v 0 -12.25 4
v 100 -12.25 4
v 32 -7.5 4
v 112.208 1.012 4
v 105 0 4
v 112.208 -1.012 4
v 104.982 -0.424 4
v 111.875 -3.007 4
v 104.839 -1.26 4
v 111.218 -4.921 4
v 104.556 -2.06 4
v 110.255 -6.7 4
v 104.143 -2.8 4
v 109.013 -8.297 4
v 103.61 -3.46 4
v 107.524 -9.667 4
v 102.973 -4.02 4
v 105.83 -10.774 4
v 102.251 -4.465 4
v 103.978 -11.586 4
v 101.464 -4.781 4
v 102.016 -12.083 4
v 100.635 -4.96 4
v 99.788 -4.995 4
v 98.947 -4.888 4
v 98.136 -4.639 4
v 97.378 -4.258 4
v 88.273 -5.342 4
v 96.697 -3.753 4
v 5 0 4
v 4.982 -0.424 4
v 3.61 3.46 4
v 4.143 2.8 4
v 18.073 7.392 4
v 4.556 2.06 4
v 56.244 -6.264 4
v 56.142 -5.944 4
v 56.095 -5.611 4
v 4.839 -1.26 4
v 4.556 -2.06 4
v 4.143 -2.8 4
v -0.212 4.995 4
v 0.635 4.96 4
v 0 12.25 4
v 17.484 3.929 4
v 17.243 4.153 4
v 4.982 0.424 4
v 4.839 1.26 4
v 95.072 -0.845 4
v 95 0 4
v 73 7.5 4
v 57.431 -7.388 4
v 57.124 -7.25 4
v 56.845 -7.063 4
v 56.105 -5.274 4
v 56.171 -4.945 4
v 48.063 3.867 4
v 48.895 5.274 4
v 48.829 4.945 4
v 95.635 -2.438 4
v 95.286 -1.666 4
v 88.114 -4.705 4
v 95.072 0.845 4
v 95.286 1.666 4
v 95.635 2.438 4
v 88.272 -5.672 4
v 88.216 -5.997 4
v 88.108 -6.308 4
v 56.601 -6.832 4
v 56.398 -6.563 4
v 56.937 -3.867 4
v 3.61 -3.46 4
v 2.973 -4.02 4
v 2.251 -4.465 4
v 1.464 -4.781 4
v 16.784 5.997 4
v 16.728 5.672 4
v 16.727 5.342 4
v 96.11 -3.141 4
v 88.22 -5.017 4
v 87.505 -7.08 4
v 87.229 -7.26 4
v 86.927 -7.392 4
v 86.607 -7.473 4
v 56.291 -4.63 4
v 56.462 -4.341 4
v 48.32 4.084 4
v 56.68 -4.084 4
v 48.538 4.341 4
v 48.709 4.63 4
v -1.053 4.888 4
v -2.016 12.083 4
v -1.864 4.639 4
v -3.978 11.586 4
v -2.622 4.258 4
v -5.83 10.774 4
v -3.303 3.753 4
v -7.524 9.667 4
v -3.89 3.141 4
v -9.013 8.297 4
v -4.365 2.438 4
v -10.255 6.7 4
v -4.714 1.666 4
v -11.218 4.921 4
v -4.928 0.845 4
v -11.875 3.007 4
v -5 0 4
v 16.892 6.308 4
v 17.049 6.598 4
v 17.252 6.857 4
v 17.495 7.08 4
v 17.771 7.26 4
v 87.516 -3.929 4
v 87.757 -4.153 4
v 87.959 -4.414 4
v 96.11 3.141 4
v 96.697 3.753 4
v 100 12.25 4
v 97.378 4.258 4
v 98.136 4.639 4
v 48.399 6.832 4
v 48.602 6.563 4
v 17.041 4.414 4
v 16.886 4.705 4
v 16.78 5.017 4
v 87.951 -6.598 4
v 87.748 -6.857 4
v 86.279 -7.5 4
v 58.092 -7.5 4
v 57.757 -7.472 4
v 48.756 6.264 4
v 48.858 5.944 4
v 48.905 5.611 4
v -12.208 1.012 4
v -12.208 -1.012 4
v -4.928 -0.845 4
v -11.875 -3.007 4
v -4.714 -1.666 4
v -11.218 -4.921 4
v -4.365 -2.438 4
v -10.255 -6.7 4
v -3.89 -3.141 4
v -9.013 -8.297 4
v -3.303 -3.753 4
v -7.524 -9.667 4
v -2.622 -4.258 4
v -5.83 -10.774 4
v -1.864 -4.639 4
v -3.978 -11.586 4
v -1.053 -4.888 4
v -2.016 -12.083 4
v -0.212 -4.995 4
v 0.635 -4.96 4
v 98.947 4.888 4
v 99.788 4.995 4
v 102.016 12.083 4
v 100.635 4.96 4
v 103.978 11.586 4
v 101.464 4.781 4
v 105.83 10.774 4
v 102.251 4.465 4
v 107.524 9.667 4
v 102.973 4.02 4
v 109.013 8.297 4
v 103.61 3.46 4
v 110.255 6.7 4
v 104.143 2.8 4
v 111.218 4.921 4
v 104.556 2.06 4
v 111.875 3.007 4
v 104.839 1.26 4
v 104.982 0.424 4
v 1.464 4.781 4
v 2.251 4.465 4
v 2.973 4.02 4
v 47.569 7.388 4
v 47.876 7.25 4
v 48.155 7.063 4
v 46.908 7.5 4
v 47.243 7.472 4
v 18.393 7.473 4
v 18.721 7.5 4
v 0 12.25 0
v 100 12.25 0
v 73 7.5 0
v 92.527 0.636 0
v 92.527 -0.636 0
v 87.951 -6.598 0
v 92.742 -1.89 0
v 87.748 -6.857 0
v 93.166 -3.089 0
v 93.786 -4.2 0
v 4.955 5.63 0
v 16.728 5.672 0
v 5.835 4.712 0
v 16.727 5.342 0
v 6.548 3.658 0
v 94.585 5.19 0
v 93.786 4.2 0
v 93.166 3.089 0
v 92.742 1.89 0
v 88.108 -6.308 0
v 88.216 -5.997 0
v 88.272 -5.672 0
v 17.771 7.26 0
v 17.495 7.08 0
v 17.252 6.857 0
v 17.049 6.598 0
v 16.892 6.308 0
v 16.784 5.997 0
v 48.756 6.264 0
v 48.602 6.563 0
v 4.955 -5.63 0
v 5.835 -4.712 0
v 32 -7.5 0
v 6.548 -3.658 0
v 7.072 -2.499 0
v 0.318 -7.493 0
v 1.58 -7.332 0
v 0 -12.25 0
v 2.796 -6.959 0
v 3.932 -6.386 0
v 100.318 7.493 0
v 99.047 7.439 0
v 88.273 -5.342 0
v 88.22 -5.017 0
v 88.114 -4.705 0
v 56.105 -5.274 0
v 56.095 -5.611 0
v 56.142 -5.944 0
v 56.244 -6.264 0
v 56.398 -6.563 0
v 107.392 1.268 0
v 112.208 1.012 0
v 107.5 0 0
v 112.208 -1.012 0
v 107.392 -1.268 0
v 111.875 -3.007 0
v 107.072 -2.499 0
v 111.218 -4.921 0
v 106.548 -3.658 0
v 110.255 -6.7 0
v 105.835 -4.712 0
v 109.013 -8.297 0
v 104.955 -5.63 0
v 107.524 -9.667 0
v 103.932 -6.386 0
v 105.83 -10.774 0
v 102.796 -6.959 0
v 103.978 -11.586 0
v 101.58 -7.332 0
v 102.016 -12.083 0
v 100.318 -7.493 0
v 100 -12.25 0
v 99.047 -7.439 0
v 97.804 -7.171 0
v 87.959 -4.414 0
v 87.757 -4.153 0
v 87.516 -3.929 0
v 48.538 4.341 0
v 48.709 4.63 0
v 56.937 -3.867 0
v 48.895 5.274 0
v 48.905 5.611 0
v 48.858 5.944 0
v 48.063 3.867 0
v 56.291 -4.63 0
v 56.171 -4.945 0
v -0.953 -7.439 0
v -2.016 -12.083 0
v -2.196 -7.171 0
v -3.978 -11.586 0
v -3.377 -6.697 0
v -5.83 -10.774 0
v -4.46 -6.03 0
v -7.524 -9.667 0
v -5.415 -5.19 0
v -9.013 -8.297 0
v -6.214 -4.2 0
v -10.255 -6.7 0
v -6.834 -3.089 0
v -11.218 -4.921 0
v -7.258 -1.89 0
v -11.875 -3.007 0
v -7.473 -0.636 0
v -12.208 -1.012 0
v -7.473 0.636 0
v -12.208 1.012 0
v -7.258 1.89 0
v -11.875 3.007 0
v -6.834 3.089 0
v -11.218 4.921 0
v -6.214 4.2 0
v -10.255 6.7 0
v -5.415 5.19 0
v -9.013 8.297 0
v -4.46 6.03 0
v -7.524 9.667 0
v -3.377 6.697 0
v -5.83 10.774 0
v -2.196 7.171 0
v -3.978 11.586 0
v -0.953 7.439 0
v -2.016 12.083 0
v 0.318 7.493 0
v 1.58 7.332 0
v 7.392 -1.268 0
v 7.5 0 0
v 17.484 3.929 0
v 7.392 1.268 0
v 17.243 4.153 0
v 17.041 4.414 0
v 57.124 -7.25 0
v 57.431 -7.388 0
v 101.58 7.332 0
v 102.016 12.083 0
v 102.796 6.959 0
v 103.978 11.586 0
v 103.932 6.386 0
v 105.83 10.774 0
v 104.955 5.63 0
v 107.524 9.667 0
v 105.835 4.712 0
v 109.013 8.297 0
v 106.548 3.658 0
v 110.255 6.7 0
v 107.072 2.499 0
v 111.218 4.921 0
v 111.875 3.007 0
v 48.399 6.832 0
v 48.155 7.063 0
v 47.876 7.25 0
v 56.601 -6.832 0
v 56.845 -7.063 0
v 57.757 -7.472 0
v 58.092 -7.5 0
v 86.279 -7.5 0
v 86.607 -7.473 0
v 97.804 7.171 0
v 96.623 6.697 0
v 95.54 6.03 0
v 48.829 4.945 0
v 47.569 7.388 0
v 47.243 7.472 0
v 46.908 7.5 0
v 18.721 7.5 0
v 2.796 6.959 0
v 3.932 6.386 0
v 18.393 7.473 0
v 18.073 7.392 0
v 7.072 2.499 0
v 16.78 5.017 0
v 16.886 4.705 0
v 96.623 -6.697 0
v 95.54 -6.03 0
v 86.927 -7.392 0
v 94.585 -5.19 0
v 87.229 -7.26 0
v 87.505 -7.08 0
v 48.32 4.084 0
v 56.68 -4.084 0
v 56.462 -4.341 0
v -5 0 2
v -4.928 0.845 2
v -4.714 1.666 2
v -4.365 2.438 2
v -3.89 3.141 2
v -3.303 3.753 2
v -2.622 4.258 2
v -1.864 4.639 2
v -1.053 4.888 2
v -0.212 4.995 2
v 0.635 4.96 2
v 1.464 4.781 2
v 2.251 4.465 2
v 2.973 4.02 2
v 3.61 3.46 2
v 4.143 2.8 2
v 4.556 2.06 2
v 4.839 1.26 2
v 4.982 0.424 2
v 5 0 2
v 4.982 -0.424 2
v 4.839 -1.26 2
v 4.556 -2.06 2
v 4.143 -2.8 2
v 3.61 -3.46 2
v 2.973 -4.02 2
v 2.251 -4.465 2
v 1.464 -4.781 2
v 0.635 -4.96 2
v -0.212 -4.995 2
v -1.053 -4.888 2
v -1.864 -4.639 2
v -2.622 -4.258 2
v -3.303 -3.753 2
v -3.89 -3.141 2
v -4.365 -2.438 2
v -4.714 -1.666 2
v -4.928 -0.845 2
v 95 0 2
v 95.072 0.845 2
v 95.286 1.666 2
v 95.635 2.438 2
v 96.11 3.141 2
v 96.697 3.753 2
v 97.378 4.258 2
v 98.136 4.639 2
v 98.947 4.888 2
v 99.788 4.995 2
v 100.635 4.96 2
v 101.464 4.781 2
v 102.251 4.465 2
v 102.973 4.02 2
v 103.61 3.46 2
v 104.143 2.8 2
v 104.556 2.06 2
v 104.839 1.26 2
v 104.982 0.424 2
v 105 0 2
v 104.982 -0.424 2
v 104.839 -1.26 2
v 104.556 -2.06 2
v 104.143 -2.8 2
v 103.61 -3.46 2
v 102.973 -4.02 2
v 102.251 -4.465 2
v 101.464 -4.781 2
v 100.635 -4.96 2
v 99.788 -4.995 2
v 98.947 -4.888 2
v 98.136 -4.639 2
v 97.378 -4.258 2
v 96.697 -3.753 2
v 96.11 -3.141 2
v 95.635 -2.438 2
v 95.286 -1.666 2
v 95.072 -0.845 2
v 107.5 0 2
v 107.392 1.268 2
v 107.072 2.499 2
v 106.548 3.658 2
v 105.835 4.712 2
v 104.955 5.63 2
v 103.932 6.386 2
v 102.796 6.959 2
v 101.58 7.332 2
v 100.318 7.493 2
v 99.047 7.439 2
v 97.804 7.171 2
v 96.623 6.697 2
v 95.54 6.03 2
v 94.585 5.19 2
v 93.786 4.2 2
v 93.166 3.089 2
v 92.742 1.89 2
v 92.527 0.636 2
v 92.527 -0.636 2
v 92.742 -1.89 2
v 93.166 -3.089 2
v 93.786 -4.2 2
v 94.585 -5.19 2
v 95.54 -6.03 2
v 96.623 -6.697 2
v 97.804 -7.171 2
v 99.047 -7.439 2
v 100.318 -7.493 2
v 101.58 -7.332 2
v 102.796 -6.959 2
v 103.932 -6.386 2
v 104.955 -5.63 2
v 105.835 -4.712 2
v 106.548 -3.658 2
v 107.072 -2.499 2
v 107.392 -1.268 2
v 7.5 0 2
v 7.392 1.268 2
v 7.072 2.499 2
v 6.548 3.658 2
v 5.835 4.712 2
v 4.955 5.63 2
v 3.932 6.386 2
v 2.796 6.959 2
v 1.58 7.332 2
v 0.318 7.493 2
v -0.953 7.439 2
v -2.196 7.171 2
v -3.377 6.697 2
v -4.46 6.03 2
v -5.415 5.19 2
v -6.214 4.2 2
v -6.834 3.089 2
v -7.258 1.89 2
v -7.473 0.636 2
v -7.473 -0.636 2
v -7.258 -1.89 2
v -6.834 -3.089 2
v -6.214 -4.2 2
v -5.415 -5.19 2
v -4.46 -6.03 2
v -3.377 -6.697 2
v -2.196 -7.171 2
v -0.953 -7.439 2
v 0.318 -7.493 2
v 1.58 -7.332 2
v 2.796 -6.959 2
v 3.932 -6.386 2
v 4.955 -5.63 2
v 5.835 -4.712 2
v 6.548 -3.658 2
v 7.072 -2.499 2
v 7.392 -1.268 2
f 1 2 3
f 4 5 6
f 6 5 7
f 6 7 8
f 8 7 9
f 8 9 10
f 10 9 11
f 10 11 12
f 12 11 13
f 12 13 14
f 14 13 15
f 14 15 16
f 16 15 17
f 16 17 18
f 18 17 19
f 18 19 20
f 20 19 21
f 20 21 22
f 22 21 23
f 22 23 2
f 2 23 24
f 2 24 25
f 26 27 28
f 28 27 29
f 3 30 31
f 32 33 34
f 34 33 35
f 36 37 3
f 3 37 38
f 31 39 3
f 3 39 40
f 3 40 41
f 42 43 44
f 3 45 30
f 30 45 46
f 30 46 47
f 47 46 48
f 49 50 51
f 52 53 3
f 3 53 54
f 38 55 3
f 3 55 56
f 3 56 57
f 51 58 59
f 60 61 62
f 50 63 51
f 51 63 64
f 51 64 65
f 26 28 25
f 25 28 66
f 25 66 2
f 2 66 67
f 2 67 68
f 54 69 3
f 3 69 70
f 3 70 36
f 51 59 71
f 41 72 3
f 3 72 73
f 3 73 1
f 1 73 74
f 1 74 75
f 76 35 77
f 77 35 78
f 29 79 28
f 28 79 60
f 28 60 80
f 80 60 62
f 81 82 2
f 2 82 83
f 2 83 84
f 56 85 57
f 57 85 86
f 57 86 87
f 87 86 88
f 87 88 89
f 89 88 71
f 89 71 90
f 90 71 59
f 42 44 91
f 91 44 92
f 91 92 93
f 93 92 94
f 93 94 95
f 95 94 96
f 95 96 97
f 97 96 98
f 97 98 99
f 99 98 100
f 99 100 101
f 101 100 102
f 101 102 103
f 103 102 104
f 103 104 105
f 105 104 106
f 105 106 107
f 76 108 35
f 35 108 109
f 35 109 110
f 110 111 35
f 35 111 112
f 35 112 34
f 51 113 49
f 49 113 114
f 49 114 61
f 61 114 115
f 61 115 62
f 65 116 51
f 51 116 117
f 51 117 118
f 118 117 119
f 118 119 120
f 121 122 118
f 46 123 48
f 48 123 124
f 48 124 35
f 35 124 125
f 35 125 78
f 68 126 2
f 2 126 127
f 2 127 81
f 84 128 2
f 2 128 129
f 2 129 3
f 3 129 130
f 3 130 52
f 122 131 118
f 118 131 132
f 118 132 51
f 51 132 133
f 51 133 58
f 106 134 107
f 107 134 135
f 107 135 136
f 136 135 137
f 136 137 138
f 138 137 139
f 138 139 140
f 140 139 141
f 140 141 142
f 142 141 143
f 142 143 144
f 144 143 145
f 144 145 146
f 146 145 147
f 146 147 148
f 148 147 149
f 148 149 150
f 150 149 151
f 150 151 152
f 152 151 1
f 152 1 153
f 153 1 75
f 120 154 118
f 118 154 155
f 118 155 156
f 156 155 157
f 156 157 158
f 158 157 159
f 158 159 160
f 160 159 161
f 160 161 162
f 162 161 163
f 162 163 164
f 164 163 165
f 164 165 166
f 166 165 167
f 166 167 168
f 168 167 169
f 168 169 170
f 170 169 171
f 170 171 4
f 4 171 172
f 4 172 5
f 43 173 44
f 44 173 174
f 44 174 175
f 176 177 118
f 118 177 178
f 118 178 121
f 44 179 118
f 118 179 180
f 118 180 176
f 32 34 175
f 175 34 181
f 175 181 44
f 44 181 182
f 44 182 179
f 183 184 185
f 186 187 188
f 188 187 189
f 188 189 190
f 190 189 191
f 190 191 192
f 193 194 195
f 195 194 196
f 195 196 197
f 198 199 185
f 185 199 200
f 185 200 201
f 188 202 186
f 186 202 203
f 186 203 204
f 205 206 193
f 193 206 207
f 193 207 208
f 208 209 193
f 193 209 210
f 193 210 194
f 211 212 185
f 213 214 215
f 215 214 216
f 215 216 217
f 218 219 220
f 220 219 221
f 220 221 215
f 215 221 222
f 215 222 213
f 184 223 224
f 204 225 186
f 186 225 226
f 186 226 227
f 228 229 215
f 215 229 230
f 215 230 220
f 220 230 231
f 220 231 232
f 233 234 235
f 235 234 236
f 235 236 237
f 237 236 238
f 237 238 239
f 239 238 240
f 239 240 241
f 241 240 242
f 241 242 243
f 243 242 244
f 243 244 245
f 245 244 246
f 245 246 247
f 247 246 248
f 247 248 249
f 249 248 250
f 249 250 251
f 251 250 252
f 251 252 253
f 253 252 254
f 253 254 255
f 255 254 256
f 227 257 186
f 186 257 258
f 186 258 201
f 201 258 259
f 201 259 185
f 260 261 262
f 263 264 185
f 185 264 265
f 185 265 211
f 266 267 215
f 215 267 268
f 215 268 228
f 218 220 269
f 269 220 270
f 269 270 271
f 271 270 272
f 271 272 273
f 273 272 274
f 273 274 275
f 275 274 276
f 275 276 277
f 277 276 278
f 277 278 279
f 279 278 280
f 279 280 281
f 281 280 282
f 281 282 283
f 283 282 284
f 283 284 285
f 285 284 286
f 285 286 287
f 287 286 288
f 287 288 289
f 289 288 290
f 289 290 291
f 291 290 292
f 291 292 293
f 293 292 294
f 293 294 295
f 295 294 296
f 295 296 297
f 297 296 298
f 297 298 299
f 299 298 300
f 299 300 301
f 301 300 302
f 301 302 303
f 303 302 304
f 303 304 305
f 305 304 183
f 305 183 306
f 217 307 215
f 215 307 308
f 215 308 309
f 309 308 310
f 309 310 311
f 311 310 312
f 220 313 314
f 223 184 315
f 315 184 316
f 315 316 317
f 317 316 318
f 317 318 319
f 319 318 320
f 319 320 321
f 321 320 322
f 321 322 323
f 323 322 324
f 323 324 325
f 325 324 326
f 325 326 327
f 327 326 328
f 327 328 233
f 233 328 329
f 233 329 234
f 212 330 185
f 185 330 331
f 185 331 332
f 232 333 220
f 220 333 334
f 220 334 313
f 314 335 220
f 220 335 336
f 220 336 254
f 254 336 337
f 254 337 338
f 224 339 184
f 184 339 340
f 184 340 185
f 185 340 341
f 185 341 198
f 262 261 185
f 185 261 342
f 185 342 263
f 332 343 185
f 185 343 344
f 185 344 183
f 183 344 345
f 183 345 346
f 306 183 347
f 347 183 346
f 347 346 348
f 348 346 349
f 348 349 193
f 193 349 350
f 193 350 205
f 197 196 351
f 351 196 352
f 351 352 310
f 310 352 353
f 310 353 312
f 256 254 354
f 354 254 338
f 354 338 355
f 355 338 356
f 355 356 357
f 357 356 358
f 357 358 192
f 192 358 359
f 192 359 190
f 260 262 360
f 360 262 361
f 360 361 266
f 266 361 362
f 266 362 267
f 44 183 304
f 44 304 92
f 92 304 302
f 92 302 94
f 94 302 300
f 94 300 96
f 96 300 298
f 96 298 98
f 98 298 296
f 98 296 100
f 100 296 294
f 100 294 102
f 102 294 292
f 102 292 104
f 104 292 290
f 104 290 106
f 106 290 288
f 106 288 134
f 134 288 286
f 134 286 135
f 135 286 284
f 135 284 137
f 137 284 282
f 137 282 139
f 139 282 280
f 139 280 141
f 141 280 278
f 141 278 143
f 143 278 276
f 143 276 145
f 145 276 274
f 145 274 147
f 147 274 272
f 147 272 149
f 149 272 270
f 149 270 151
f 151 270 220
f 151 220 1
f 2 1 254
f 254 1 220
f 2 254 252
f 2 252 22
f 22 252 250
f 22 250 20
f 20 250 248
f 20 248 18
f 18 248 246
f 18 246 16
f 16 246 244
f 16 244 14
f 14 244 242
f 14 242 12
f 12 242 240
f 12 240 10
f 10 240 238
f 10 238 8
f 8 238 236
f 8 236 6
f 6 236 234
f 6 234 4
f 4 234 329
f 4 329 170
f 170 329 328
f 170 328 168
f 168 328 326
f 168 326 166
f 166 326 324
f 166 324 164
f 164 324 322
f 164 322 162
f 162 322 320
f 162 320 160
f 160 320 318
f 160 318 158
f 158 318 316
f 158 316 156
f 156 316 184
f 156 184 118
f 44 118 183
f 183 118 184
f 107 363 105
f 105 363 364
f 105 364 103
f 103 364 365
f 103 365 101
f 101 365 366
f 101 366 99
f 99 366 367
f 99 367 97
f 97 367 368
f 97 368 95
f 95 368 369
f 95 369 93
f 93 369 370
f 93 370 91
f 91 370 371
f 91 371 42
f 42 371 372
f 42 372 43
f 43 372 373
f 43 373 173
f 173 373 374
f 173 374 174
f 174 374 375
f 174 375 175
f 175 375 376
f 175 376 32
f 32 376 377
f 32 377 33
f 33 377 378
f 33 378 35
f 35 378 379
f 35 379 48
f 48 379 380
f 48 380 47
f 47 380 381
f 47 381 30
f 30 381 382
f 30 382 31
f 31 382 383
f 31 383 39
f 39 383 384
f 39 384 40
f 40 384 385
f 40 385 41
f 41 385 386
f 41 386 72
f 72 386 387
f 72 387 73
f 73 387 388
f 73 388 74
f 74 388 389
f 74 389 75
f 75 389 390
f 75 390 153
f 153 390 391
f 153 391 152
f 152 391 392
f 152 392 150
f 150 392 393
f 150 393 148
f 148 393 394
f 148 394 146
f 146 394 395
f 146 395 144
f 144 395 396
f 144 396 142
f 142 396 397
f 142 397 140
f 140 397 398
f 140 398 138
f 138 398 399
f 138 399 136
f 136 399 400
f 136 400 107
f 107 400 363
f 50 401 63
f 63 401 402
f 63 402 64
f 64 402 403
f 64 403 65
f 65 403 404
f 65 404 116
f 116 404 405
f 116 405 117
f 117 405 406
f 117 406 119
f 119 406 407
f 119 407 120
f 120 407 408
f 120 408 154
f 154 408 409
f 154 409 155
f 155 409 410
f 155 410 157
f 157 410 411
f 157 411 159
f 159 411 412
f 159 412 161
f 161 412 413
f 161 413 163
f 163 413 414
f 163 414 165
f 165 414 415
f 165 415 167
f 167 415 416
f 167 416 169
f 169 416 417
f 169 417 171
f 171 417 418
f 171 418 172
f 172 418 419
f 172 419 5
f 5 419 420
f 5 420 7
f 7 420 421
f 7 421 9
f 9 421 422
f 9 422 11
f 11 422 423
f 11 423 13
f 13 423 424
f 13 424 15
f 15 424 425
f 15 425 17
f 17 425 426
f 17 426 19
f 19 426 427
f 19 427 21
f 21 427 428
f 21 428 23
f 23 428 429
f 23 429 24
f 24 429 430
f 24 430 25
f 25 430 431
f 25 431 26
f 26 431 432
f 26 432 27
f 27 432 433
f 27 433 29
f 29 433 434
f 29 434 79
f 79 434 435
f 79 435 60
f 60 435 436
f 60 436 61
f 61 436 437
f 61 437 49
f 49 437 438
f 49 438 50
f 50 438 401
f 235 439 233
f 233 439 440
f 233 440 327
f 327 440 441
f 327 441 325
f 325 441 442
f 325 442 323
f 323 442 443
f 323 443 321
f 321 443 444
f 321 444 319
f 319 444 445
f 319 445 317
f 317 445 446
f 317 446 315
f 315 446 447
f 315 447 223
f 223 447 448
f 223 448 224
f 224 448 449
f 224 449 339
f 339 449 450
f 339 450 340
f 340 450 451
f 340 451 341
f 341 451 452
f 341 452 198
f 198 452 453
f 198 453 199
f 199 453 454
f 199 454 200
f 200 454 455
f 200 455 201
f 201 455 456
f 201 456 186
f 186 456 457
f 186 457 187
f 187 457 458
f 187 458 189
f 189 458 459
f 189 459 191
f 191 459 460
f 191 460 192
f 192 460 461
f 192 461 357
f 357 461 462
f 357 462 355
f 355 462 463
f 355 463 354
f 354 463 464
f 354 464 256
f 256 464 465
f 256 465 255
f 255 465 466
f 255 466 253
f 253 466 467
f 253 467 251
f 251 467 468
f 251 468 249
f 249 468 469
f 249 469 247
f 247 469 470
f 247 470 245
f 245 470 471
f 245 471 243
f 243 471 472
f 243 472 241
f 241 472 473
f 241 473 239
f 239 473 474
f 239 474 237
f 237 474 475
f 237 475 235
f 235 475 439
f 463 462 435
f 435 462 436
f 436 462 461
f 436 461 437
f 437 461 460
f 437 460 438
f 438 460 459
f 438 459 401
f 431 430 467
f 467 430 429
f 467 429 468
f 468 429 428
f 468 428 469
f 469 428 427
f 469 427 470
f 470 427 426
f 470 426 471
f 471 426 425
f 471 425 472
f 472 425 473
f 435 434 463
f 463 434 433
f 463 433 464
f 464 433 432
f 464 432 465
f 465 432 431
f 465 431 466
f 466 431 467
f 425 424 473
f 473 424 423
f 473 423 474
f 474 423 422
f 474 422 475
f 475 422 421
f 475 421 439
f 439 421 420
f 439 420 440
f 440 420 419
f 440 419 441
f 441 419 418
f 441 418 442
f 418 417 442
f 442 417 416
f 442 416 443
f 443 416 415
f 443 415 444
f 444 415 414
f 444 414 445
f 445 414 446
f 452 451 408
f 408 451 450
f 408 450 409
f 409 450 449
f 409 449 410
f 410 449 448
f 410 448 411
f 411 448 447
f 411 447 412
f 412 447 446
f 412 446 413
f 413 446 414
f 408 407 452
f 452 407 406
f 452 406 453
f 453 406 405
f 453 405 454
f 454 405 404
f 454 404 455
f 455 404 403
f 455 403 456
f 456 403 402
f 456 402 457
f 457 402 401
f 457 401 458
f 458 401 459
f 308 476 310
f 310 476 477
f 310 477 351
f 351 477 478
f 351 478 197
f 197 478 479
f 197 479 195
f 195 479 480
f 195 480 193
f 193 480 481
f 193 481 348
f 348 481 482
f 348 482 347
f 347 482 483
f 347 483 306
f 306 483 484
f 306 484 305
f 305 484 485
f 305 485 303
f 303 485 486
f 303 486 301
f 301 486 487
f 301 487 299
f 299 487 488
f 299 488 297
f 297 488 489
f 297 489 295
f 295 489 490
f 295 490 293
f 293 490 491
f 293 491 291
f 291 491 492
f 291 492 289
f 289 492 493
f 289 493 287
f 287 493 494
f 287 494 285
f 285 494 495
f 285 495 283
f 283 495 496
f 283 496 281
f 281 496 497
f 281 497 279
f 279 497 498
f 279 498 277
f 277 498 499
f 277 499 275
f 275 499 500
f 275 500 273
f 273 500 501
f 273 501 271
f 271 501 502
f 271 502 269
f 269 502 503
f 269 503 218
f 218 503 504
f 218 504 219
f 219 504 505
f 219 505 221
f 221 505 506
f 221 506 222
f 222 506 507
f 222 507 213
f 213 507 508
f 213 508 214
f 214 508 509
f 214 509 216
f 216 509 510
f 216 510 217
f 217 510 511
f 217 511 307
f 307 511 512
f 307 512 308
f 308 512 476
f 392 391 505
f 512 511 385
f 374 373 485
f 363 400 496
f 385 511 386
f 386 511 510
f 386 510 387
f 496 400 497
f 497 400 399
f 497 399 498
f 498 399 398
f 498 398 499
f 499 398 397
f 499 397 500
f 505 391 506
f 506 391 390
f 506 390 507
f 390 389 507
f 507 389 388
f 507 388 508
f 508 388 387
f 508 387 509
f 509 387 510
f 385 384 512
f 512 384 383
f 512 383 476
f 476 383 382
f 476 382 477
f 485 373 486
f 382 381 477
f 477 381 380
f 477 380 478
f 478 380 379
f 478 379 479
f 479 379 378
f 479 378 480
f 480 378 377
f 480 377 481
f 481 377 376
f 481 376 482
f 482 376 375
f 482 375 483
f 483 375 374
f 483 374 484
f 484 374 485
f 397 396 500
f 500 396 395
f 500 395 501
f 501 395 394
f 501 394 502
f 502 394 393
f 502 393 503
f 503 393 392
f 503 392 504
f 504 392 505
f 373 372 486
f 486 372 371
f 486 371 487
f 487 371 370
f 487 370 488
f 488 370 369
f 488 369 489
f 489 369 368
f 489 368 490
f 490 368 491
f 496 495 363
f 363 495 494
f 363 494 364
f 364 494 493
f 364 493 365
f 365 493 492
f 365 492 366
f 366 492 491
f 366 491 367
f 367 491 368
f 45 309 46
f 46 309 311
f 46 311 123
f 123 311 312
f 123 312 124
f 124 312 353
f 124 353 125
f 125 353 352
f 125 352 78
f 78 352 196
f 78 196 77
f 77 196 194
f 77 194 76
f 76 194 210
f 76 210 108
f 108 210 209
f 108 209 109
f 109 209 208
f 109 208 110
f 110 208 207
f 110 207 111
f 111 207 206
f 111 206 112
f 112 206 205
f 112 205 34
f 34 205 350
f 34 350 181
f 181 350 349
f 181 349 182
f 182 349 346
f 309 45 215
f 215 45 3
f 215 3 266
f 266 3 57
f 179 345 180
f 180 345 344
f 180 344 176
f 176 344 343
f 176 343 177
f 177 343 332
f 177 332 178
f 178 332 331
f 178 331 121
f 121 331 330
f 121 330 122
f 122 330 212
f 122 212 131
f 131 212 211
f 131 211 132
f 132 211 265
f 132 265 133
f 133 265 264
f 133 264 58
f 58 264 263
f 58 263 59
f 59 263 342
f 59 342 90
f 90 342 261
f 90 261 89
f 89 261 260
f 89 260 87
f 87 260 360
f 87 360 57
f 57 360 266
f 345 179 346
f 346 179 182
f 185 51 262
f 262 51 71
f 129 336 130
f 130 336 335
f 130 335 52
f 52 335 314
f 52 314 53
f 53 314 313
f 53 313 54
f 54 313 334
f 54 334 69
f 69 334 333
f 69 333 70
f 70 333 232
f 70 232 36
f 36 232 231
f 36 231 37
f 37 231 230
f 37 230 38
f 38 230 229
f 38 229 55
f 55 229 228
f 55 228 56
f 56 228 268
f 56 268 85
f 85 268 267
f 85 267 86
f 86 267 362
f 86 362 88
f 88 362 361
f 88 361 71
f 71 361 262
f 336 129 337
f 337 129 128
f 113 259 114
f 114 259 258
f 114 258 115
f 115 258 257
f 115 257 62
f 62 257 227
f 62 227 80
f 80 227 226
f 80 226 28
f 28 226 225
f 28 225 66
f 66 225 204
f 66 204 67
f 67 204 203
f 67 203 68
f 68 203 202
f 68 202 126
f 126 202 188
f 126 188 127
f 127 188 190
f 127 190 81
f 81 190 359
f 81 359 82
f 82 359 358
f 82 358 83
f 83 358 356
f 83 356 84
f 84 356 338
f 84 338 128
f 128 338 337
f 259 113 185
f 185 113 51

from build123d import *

# Parameters (mm, degrees)
SKETCH_1_R          = 5
EXTRUDE_1_DEPTH     = 4
SKETCH_4_R          = 7.5
CUT_EXTRUDE_3_DEPTH = 3
CUT_EXTRUDE_4_REACH = 6


with BuildPart() as part:
    # 草图1 → 凸台-拉伸1 (new body)
    with BuildSketch(Plane.XY):
        with BuildLine():
            Line((0, 12.25), (100, 12.25))
            ThreePointArc((100, 12.25), (112.25, 0), (100, -12.25))
            Line((100, -12.25), (0, -12.25))
            ThreePointArc((0, -12.25), (-12.25, 0), (0, 12.25))
        make_face()
        Circle(SKETCH_1_R, mode=Mode.SUBTRACT)
        with Locations((100, 0)):
            Circle(SKETCH_1_R, mode=Mode.SUBTRACT)
    extrude(amount=EXTRUDE_1_DEPTH)

    # 草图4 → 切除-拉伸3 (cut)
    with BuildSketch(Plane.XY.offset(2)):
        Circle(SKETCH_4_R)
        with Locations((100, 0)):
            Circle(SKETCH_4_R)
    extrude(amount=-CUT_EXTRUDE_3_DEPTH, mode=Mode.SUBTRACT)

    # 草图5 → 切除-拉伸4 (cut, up to next)
    with BuildSketch(Plane(origin=(0, 0, 0), x_dir=(-1, 0, 0), z_dir=(0, 0, -1)), mode=Mode.PRIVATE) as cut_extrude_4_sk1:
        with BuildLine():
            Line((-73, 7.5), (-87.516221291, -3.928572043))
            ThreePointArc((-87.516221291, -3.928572043), (-88.168863565, -6.15465414), (-86.279041363, -7.5))
            Line((-86.279041363, -7.5), (-58.092346966, -7.5))
            ThreePointArc((-58.092346966, -7.5), (-56.186421499, -6.106174988), (-56.937022619, -3.867448116))
            Line((-56.937022619, -3.867448116), (-73, 7.5))
        make_face()
    cut_extrude_4_tool1 = extrude(cut_extrude_4_sk1.sketch, amount=-CUT_EXTRUDE_4_REACH, mode=Mode.PRIVATE) & part.part
    add(cut_extrude_4_tool1.solids().sort_by_distance((72.350084, -2.302404, 0))[0], mode=Mode.SUBTRACT)
    # 草图5 → 切除-拉伸4 (cut, up to next)
    with BuildSketch(Plane(origin=(0, 0, 0), x_dir=(-1, 0, 0), z_dir=(0, 0, -1)), mode=Mode.PRIVATE) as cut_extrude_4_sk2:
        with BuildLine():
            Line((-32, -7.5), (-17.483778709, 3.928572043))
            ThreePointArc((-17.483778709, 3.928572043), (-16.831136435, 6.15465414), (-18.720958637, 7.5))
            Line((-18.720958637, 7.5), (-46.907653034, 7.5))
            ThreePointArc((-46.907653034, 7.5), (-48.813578501, 6.106174988), (-48.062977381, 3.867448116))
            Line((-48.062977381, 3.867448116), (-32, -7.5))
        make_face()
    cut_extrude_4_tool2 = extrude(cut_extrude_4_sk2.sketch, amount=-CUT_EXTRUDE_4_REACH, mode=Mode.PRIVATE) & part.part
    add(cut_extrude_4_tool2.solids().sort_by_distance((32.649916, 2.302404, 0))[0], mode=Mode.SUBTRACT)


solid = part.part
